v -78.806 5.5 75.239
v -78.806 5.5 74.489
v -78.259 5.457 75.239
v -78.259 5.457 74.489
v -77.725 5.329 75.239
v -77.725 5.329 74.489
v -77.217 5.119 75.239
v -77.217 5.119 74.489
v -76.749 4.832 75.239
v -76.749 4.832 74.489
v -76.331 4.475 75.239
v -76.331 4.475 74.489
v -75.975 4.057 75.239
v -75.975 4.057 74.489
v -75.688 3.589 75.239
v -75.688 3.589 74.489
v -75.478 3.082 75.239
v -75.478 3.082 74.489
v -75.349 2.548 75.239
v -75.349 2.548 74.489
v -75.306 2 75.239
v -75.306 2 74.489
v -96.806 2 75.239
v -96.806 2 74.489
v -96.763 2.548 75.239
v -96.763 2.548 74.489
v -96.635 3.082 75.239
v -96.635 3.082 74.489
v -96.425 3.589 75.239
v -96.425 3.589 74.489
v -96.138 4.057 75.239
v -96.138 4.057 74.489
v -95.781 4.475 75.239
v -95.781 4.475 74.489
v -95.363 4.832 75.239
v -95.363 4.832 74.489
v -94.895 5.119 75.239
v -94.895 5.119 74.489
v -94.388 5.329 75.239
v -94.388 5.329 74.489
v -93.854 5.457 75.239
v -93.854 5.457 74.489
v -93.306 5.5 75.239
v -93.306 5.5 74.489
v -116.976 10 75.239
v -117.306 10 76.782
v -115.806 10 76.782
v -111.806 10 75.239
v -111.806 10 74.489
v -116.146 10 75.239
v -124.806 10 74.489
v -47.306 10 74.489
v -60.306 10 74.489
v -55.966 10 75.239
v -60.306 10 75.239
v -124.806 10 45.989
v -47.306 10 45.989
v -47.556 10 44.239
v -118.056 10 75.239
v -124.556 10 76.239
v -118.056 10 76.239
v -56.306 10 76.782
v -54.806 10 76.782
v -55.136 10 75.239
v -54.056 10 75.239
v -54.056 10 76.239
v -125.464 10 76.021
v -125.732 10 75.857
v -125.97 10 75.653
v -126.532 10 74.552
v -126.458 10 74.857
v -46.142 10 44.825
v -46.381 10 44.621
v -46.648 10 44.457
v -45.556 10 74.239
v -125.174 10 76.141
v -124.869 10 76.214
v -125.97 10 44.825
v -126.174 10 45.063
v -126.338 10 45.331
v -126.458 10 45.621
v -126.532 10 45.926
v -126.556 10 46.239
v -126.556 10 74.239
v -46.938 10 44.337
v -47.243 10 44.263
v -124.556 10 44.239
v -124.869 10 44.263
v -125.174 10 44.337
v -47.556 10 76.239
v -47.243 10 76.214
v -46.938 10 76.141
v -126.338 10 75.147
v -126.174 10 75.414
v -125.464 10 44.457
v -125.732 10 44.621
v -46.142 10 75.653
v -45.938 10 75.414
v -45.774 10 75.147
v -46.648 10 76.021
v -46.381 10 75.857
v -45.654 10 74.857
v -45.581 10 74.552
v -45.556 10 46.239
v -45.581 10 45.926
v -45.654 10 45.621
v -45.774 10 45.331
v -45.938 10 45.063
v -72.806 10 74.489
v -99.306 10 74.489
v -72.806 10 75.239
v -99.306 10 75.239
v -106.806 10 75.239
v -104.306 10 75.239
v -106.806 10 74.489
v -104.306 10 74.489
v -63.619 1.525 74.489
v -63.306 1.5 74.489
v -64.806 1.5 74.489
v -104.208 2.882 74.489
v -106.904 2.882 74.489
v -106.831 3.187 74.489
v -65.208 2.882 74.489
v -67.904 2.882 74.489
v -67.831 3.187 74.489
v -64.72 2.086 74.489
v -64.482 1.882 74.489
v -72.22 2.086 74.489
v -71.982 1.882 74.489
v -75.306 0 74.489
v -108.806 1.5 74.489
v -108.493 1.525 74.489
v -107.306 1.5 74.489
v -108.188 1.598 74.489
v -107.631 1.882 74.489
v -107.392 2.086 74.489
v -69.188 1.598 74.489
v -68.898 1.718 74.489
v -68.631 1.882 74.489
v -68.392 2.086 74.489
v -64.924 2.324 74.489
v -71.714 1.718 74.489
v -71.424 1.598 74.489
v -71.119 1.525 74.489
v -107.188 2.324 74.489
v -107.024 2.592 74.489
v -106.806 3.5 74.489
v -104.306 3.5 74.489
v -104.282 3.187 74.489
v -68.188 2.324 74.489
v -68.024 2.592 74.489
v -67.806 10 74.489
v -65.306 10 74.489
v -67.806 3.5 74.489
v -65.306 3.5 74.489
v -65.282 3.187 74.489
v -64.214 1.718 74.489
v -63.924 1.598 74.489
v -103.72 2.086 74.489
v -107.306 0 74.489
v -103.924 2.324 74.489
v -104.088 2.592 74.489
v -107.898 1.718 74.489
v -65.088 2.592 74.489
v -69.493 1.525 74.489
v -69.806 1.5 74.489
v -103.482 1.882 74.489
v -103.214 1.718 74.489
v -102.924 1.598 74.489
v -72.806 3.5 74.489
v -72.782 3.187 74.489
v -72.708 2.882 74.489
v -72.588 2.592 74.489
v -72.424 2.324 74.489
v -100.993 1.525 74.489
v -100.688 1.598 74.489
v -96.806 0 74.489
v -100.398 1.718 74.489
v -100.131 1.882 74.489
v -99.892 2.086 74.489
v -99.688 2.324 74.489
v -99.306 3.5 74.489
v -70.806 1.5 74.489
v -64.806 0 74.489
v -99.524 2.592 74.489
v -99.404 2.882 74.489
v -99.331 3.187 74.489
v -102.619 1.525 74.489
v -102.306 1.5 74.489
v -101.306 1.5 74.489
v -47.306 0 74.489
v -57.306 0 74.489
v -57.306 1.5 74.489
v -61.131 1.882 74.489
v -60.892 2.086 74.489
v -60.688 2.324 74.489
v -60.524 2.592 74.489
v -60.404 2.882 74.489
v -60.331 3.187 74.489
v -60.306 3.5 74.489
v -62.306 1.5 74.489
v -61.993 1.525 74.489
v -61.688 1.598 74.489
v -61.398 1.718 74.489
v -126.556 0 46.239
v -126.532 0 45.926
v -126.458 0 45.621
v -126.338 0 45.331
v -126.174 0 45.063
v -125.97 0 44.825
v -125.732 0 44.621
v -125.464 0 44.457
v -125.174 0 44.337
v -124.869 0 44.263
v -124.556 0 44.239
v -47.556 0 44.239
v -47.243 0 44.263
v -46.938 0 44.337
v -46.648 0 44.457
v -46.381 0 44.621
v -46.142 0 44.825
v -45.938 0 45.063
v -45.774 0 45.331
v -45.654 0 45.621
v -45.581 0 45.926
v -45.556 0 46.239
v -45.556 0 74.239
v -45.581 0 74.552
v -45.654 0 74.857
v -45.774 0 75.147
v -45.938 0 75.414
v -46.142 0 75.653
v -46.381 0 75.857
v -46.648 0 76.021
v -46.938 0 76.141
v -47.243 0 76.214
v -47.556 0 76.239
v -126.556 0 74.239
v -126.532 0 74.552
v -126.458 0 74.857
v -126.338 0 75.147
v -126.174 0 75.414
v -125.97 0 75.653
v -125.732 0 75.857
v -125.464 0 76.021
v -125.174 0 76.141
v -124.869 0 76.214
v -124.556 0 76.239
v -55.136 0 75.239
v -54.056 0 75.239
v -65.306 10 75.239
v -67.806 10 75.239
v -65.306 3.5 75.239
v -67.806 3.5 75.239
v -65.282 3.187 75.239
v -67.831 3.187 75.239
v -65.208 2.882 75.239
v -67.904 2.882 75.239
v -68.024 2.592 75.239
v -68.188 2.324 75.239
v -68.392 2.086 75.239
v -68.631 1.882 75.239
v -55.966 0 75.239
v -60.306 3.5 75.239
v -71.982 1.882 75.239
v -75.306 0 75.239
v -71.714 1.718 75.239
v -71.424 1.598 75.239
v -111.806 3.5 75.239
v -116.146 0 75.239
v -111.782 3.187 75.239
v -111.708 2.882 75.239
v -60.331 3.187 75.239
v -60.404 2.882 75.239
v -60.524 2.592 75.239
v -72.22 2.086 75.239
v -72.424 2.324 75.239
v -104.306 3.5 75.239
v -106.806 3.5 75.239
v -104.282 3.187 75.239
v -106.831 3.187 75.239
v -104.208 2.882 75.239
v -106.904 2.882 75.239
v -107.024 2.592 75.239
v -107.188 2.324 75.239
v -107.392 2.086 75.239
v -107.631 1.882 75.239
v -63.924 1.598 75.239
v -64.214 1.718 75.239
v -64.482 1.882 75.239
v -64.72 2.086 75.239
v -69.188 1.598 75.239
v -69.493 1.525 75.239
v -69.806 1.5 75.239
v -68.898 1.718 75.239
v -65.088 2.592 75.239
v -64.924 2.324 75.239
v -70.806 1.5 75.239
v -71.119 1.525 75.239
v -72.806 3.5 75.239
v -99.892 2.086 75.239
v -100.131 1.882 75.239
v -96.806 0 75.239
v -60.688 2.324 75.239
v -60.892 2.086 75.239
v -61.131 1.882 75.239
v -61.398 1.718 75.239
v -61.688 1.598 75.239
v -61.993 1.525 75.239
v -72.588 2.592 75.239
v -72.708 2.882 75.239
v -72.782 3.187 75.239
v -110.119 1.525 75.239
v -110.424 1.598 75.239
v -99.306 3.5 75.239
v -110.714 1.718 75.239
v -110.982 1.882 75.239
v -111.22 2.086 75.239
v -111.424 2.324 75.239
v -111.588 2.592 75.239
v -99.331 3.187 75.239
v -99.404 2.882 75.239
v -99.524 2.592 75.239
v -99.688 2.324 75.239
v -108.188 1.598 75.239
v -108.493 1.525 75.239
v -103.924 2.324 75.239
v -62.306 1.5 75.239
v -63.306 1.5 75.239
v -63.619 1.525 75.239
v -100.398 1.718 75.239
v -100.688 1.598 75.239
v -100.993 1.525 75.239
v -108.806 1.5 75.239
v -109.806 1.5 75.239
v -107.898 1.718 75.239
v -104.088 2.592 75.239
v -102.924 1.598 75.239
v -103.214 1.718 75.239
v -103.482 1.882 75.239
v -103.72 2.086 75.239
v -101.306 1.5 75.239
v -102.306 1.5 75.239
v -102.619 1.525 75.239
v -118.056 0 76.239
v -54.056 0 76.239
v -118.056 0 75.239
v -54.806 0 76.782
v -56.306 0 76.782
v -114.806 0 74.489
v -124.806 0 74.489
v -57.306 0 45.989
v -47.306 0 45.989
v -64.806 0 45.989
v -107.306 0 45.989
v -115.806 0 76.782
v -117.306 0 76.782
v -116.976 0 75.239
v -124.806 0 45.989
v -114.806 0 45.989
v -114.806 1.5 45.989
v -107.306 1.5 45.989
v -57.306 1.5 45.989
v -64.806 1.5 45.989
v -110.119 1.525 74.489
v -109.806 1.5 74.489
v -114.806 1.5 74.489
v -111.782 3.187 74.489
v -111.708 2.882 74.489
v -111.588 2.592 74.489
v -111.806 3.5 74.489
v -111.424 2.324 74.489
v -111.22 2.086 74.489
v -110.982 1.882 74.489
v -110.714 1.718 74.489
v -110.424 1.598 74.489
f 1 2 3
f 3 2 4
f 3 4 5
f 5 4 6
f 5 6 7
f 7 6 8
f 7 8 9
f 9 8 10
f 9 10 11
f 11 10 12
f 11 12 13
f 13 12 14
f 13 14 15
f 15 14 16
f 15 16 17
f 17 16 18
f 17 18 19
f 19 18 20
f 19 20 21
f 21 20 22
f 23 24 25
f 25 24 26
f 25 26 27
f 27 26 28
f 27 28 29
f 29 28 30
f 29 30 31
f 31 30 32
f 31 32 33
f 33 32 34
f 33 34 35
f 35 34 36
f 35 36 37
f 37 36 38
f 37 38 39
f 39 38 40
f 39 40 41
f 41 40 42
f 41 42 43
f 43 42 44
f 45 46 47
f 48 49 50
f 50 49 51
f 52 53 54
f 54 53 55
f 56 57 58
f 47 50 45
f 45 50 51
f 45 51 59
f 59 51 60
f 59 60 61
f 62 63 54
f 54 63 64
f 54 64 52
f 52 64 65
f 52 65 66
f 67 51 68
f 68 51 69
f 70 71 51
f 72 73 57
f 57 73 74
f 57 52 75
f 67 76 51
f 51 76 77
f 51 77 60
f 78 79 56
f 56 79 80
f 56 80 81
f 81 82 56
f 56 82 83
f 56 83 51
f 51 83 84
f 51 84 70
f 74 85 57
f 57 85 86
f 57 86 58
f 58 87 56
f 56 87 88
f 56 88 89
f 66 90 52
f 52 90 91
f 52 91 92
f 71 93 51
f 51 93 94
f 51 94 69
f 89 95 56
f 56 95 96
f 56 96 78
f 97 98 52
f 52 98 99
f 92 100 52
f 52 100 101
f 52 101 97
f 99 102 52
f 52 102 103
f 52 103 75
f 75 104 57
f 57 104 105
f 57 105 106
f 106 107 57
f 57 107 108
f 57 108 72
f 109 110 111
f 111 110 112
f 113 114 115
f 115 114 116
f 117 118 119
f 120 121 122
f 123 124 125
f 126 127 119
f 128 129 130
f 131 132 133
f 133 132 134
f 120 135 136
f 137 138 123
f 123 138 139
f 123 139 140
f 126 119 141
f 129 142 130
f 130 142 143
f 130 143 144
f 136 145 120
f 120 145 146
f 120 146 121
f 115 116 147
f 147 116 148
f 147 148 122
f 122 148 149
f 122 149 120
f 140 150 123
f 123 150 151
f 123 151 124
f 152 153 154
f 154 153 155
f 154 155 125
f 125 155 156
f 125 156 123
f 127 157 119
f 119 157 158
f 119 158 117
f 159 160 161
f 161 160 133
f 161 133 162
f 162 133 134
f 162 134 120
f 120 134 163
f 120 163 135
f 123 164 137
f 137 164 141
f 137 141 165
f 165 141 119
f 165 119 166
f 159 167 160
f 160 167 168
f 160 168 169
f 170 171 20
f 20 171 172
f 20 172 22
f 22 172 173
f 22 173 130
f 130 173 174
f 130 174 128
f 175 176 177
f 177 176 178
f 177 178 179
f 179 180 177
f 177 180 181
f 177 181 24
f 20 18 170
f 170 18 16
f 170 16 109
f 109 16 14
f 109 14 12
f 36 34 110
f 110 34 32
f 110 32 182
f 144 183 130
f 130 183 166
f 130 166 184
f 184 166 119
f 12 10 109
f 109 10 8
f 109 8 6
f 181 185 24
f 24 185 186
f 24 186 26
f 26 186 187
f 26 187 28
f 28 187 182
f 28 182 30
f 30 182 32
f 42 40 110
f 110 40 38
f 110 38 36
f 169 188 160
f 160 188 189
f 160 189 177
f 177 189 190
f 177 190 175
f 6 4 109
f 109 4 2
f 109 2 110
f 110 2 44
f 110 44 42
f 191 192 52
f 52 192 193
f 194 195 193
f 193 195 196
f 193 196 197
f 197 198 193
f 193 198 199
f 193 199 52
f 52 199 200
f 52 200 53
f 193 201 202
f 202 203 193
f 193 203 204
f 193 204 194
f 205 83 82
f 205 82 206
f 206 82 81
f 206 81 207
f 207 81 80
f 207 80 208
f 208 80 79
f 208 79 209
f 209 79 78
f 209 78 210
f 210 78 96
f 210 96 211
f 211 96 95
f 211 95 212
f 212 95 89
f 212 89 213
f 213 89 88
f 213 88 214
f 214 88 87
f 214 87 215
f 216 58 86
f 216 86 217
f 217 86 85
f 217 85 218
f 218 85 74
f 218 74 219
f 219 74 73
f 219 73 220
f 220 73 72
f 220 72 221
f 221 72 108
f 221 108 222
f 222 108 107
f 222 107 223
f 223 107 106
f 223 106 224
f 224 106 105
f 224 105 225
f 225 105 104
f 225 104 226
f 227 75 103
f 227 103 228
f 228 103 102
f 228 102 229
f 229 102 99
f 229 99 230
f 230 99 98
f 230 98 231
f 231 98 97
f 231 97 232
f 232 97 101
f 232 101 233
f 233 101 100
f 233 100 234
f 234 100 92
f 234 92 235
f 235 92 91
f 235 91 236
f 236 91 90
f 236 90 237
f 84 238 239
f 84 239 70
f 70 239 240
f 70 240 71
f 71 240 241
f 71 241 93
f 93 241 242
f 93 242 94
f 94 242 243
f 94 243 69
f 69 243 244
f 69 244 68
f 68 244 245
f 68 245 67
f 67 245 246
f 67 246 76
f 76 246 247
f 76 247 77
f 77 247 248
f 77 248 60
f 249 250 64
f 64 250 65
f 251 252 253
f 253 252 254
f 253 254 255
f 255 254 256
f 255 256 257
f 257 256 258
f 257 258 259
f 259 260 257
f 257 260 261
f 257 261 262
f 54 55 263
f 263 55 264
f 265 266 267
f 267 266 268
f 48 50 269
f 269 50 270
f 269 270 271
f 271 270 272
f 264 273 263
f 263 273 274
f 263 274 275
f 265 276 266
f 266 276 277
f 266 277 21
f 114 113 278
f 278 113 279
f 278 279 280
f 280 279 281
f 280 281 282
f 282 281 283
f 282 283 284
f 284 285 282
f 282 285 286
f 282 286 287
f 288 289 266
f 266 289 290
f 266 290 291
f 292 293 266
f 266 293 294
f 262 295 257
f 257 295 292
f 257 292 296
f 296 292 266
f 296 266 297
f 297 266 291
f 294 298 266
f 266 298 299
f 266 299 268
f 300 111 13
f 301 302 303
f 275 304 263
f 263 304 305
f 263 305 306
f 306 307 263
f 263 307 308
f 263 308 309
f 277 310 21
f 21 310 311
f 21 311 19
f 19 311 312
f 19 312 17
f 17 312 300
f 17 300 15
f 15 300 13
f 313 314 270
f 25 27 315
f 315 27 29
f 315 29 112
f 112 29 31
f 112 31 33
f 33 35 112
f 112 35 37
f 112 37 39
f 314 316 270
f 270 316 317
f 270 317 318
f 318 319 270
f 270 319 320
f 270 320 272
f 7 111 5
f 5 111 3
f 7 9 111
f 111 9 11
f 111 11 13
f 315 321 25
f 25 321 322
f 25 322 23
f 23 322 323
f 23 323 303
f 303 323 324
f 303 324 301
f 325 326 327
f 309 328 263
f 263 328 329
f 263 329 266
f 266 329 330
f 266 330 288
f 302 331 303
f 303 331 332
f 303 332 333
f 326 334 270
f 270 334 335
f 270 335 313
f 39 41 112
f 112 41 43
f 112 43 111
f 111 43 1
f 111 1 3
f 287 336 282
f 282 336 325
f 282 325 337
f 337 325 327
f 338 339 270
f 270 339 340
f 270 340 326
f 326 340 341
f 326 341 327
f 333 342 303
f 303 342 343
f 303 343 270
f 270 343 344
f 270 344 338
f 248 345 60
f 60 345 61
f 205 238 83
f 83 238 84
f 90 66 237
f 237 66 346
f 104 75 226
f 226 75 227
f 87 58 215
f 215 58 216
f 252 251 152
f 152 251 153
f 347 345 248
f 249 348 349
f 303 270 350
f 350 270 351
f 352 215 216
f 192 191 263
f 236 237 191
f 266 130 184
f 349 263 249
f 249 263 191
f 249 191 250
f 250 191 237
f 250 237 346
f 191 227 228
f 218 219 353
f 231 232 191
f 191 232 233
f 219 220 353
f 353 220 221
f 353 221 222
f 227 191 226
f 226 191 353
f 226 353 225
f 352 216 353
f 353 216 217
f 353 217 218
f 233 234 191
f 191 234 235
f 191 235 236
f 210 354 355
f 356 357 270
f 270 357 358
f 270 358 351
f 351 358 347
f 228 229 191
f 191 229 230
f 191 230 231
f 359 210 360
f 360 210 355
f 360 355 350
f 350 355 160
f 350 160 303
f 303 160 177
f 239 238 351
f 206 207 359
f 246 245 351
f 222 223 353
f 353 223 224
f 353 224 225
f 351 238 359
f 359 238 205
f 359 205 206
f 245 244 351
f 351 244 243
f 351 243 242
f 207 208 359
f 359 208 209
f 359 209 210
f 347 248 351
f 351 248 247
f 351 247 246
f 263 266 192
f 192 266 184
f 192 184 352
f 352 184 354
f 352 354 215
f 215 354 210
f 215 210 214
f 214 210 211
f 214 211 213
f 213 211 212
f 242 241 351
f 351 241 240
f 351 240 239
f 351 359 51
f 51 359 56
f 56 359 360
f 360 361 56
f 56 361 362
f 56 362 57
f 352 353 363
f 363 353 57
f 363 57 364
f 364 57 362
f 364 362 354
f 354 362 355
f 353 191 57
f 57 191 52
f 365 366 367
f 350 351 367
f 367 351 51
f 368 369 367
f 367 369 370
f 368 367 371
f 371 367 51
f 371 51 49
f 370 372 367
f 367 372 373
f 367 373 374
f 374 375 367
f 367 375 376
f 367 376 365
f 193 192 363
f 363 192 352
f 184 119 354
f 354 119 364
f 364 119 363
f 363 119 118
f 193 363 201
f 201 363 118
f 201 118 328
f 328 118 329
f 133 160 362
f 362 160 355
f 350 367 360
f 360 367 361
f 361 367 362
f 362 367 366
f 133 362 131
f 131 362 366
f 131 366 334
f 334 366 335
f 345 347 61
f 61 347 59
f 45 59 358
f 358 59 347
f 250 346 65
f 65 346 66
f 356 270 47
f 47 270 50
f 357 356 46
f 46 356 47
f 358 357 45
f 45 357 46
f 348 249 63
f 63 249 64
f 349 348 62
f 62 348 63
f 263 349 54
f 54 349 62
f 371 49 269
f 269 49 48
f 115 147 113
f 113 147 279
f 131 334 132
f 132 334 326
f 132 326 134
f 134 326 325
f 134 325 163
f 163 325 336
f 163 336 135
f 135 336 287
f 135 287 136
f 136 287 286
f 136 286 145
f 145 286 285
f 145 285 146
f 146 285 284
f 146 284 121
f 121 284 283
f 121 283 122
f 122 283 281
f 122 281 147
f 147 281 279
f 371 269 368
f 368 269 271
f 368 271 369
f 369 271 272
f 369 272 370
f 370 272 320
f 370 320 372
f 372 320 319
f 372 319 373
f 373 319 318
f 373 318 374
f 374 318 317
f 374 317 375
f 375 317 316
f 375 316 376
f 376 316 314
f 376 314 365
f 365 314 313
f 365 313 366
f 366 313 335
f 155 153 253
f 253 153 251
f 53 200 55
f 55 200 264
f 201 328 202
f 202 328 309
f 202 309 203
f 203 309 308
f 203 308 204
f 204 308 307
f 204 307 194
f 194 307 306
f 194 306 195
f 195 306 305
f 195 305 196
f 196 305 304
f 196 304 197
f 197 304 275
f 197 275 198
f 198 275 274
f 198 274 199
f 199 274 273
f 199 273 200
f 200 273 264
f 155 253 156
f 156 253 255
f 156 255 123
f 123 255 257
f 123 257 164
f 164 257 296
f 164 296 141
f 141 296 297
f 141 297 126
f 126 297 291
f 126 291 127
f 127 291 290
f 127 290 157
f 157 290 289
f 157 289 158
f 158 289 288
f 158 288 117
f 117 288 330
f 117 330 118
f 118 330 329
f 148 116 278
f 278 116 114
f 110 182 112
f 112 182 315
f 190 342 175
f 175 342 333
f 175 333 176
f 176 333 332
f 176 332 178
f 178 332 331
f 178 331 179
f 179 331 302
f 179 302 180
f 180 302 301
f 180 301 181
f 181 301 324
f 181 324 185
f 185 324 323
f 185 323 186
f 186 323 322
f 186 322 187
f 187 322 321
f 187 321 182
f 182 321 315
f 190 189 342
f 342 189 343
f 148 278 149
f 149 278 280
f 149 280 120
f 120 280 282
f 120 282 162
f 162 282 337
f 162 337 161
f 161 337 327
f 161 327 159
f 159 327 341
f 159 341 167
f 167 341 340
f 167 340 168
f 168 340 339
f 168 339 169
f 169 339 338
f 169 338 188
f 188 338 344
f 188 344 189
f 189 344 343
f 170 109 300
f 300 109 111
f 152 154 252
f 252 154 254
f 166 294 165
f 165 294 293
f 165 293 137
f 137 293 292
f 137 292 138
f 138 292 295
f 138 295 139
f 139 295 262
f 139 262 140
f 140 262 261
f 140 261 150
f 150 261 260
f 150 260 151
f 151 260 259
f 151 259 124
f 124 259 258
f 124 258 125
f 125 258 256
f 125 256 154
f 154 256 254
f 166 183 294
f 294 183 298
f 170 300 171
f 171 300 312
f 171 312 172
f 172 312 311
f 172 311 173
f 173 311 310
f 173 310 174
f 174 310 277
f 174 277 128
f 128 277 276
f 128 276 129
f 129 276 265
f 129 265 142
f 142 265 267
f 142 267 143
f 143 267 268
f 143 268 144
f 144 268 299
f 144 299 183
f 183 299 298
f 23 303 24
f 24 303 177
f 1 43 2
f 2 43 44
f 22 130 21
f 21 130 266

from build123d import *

# Parameters (mm, degrees)
SKETCH1_W           = 81
SKETCH1_H           = 32
BOSS_EXTRUDE1_DEPTH = 10
SKETCH2_W           = 77.5
SKETCH2_H           = 28.5
CUT_EXTRUDE1_DEPTH  = 10
SKETCH3_W           = 7.5
SKETCH3_H           = 32
BOSS_EXTRUDE2_DEPTH = 1.5
SKETCH4_W           = 64
SKETCH4_H           = 1
CUT_EXTRUDE2_DEPTH  = 10
BOSS_EXTRUDE3_DEPTH = 10
BOSS_EXTRUDE4_DEPTH = 10
FILLET1_R           = 2
FILLET2_R           = 2
FILLET3_R           = 2
FILLET4_R           = 2
CUT_EXTRUDE3_DEPTH  = 0.75
SKETCH8_W           = 21.5
SKETCH8_H           = 5.5
CUT_EXTRUDE4_DEPTH  = 0.75
FILLET5_R           = 3.5
FILLET6_R           = 3.5


with BuildPart() as part:
    # Sketch1 → Boss-Extrude1 (new body)
    with BuildSketch(Plane(origin=(0, 0, 0), x_dir=(1, 0, 0), z_dir=(0, 1, 0))):
        with Locations((-86.056207425, -60.23876691)):
            Rectangle(SKETCH1_W, SKETCH1_H)
    extrude(amount=BOSS_EXTRUDE1_DEPTH)

    # Sketch2 → Cut-Extrude1 (cut)
    with BuildSketch(Plane(origin=(0, 10, 0), x_dir=(1, 0, 0), z_dir=(0, 1, 0))):
        with Locations((-86.056207425, -60.23876691)):
            Rectangle(SKETCH2_W, SKETCH2_H)
    extrude(amount=-CUT_EXTRUDE1_DEPTH, mode=Mode.SUBTRACT)

    # Sketch3 → Boss-Extrude2 (add)
    with BuildSketch(Plane(origin=(0, 0, 0), x_dir=(-1, 0, 0), z_dir=(0, -1, 0))):
        with Locations((61.056207425, -60.23876691)):
            Rectangle(SKETCH3_W, SKETCH3_H)
        with Locations((111.056207425, -60.23876691)):
            Rectangle(SKETCH3_W, SKETCH3_H)
    extrude(amount=-BOSS_EXTRUDE2_DEPTH)

    # Sketch4 → Cut-Extrude2 (cut)
    with BuildSketch(Plane(origin=(0, 10, 0), x_dir=(1, 0, 0), z_dir=(0, 1, 0))):
        with Locations((-86.056207425, -75.73876691)):
            Rectangle(SKETCH4_W, SKETCH4_H)
    extrude(amount=-CUT_EXTRUDE2_DEPTH, mode=Mode.SUBTRACT)

    # Sketch5 → Boss-Extrude3 (add)
    with BuildSketch(Plane(origin=(0, 10, 0), x_dir=(1, 0, 0), z_dir=(0, 1, 0))):
        Polygon((-116.976207425, -75.23876691), (-117.306207425, -76.781751031), (-115.806207425, -76.781751031), (-116.146207425, -75.23876691), align=None)
    extrude(amount=-BOSS_EXTRUDE3_DEPTH)

    # Sketch6 → Boss-Extrude4 (add)
    with BuildSketch(Plane(origin=(0, 10, 0), x_dir=(1, 0, 0), z_dir=(0, 1, 0))):
        Polygon((-55.966207425, -75.23876691), (-56.306207425, -76.781751031), (-54.806207425, -76.781751031), (-55.136207425, -75.23876691), align=None)
    extrude(amount=-BOSS_EXTRUDE4_DEPTH)

    # Fillet1
    fillet1_edges = [part.edges().sort_by_distance(p)[0] for p in [
        (-126.556207425, 5, 76.23876691),
    ]]
    fillet(fillet1_edges, radius=FILLET1_R)

    # Fillet2
    fillet2_edges = [part.edges().sort_by_distance(p)[0] for p in [
        (-45.556207425, 5, 76.23876691),
    ]]
    fillet(fillet2_edges, radius=FILLET2_R)

    # Fillet3
    fillet3_edges = [part.edges().sort_by_distance(p)[0] for p in [
        (-45.556207425, 5, 44.23876691),
    ]]
    fillet(fillet3_edges, radius=FILLET3_R)

    # Fillet4
    fillet4_edges = [part.edges().sort_by_distance(p)[0] for p in [
        (-126.556207425, 5, 44.23876691),
    ]]
    fillet(fillet4_edges, radius=FILLET4_R)

    # Sketch7 → Cut-Extrude3 (cut)
    with BuildSketch(Plane.XY.offset(75.23876691)):
        with BuildLine():
            Line((-111.806207425, 10), (-106.806207425, 10))
            Line((-106.806207425, 10), (-106.806207425, 3.5))
            ThreePointArc((-106.806207425, 3.5), (-107.391993862, 2.085786438), (-108.806207425, 1.5))
            Line((-108.806207425, 1.5), (-109.806207425, 1.5))
            ThreePointArc((-109.806207425, 1.5), (-111.220420987, 2.085786438), (-111.806207425, 3.5))
            Line((-111.806207425, 3.5), (-111.806207425, 10))
        make_face()
        with BuildLine():
            Line((-65.306207425, 10), (-60.306207425, 10))
            Line((-60.306207425, 10), (-60.306207425, 3.5))
            ThreePointArc((-60.306207425, 3.5), (-60.891993862, 2.085786438), (-62.306207425, 1.5))
            Line((-62.306207425, 1.5), (-63.306207425, 1.5))
            ThreePointArc((-63.306207425, 1.5), (-64.720420987, 2.085786438), (-65.306207425, 3.5))
            Line((-65.306207425, 3.5), (-65.306207425, 10))
        make_face()
        with BuildLine():
            Line((-104.306207425, 10), (-99.306207425, 10))
            Line((-99.306207425, 10), (-99.306207425, 3.5))
            ThreePointArc((-99.306207425, 3.5), (-99.891993862, 2.085786438), (-101.306207425, 1.5))
            Line((-101.306207425, 1.5), (-102.306207425, 1.5))
            ThreePointArc((-102.306207425, 1.5), (-103.720420987, 2.085786438), (-104.306207425, 3.5))
            Line((-104.306207425, 3.5), (-104.306207425, 10))
        make_face()
        with BuildLine():
            Line((-72.806207425, 10), (-67.806207425, 10))
            Line((-67.806207425, 10), (-67.806207425, 3.5))
            ThreePointArc((-67.806207425, 3.5), (-68.391993862, 2.085786438), (-69.806207425, 1.5))
            Line((-69.806207425, 1.5), (-70.806207425, 1.5))
            ThreePointArc((-70.806207425, 1.5), (-72.220420987, 2.085786438), (-72.806207425, 3.5))
            Line((-72.806207425, 3.5), (-72.806207425, 10))
        make_face()
    extrude(amount=-CUT_EXTRUDE3_DEPTH, mode=Mode.SUBTRACT)

    # Sketch8 → Cut-Extrude4 (cut)
    with BuildSketch(Plane.XY.offset(75.23876691)):
        with Locations((-86.056207425, 2.75)):
            Rectangle(SKETCH8_W, SKETCH8_H)
    extrude(amount=-CUT_EXTRUDE4_DEPTH, mode=Mode.SUBTRACT)

    # Fillet5
    fillet5_edges = [part.edges().sort_by_distance(p)[0] for p in [
        (-96.806207425, 5.5, 74.86376691),
    ]]
    fillet(fillet5_edges, radius=FILLET5_R)

    # Fillet6
    fillet6_edges = [part.edges().sort_by_distance(p)[0] for p in [
        (-75.306207425, 5.5, 74.86376691),
    ]]
    fillet(fillet6_edges, radius=FILLET6_R)


solid = part.part
